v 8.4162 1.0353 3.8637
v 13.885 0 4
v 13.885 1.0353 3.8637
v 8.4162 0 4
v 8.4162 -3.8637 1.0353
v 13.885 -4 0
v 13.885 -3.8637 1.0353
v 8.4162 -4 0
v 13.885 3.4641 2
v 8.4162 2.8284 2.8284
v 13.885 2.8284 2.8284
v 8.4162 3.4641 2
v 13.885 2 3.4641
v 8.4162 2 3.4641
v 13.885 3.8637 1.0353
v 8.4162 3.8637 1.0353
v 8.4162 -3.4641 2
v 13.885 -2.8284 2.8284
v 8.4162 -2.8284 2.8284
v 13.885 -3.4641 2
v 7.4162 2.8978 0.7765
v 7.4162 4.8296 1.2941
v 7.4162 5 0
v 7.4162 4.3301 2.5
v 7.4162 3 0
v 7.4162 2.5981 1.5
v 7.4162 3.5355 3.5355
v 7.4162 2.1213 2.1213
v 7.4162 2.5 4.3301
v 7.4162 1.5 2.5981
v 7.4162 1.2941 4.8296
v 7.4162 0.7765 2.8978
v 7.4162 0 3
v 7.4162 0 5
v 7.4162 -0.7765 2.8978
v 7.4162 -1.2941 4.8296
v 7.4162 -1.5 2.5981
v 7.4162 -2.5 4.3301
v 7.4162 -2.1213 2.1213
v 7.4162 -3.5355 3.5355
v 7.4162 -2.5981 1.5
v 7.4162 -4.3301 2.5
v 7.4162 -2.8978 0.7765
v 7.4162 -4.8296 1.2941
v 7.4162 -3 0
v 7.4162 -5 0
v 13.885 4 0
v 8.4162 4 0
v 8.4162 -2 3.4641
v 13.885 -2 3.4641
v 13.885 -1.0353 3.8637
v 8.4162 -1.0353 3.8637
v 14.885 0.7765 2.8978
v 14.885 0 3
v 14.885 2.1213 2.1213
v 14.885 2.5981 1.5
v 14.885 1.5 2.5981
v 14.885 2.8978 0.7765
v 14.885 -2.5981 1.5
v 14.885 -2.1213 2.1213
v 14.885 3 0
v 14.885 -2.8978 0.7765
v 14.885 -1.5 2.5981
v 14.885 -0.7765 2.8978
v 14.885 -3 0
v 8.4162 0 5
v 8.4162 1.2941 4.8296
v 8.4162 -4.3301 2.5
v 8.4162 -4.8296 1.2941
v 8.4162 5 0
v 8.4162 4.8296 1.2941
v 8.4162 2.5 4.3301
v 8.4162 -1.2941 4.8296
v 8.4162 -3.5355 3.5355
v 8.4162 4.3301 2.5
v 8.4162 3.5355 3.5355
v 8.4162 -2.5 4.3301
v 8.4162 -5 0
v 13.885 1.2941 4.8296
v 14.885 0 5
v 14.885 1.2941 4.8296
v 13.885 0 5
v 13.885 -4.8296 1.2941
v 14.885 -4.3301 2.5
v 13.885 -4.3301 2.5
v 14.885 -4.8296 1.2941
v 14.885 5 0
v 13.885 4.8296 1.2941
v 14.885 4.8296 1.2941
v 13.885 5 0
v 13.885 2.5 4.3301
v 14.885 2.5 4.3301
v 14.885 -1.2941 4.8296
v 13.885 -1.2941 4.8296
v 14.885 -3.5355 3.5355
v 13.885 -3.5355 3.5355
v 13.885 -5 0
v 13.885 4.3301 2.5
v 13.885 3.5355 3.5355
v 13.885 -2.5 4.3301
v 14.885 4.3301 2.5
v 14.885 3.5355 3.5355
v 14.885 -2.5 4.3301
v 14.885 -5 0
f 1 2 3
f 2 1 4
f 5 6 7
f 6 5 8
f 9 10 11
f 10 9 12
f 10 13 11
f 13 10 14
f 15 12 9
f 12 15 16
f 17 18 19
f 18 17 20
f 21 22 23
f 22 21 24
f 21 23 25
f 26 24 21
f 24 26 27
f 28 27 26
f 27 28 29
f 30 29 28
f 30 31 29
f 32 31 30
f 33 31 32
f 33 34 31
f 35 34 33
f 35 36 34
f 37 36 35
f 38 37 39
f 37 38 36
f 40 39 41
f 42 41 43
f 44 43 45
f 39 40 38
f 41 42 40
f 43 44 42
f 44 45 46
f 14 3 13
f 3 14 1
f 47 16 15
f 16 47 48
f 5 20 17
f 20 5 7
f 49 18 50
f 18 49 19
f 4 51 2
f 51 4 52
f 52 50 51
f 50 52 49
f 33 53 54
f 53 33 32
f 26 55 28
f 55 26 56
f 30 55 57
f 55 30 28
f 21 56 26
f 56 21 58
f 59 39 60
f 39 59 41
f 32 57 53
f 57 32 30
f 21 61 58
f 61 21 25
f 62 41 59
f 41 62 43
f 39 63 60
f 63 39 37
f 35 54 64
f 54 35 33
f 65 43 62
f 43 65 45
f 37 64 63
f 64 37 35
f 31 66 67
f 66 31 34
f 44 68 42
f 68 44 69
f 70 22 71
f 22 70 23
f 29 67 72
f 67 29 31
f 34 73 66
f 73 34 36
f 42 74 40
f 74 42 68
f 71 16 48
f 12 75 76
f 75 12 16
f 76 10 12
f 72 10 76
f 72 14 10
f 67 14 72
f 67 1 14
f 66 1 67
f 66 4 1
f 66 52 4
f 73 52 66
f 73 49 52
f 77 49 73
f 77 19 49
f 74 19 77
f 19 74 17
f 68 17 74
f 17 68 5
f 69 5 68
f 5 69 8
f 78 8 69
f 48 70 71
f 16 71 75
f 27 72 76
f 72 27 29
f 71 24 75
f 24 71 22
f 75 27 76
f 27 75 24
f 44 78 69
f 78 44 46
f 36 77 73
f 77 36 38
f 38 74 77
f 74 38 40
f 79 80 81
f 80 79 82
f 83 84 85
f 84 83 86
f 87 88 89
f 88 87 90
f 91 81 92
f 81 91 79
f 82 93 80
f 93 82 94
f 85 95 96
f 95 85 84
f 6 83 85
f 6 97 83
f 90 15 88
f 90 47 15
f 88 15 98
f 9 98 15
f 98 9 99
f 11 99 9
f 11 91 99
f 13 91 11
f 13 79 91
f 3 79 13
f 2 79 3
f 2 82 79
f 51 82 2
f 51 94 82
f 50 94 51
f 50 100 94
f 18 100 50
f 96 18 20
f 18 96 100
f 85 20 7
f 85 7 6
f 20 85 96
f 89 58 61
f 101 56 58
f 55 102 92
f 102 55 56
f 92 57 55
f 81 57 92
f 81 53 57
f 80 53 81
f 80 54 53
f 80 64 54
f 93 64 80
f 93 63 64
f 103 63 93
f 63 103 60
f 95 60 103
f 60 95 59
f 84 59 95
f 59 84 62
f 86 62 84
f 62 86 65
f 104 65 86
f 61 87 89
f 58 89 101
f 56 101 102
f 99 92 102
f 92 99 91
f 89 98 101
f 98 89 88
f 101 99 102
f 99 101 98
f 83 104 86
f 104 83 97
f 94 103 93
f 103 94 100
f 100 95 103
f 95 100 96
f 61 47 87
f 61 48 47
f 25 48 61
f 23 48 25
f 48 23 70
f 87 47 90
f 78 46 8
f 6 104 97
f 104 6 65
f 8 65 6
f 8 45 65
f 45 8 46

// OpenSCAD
// file: ../build_environments.scad
// build_environments.scad: modules to build level sections
//

module pool(diameter=10.0, wall_height=2.0, step_width=3.0, connections=[])
{
    difference() {
        union() {
        difference() {
            cylinder(h=0.5,r1=diameter+step_width,r2=diameter+step_width,$fn=48);
            translate([0,0,-0.1])
                cylinder(h=0.7,r1=diameter,r2=diameter,$fn=48);
        }
        difference() {
            cylinder(h=wall_height,r1=diameter+step_width+1.0,r2=diameter+step_width+1.0,$fn=48);
            translate([0,0,-0.1])
                cylinder(h=wall_height+0.2,r1=diameter+step_width,r2=diameter+step_width,$fn=48);
        }
        }
    
        for (c = connections)
        {
            rotate([0,90,0]) {
                angle = atan2(c[1],c[0]);
                rotate([-angle,0,0]) {
                    cylinder(h=diameter+5.0,r1=c[2],r2=c[2],$fn=48);
                }
            }
        }
    }
}

module straight(length=10.0, width=2.0, dy1=0.0, dy2=0.0, dz=0.0)
{
    dims = [0, 0, 0, 0, 0, (dz/length)];
    matrix = [
        [ 1, dims[0], dims[1], 0 ],
        [ dims[2], 1, dims[4], 0 ],
        [ dims[5], dims[3], 1, 0 ],
        [ 0, 0, 0, 1 ]
    ];
    multmatrix(matrix)
    difference() {
        translate([dy1,0,0])
        union() {
            rotate([0,90,0]) {
                difference() {
                    cylinder(h=(length-dy1-dy2),r1=width+1.0,r2=width+1.0,$fn=24);
                    translate([0,0,-0.1])
                        cylinder(h=(length-dy1-dy2+0.2),r1=width,r2=width,$fn=24);
                }
                difference() {
                    cylinder(h=1.0,r1=width+2.0,r2=width+2.0,$fn=24);
                    translate([0,0,-0.1])
                        cylinder(h=1.2,r1=width,r2=width,$fn=24);
                }
                translate([0,0,(length-dy1-dy2)-1.0]) {
                    difference() {
                        cylinder(h=1.0,r1=width+2.0,r2=width+2.0,$fn=24);
                        translate([0,0,-0.1])
                            cylinder(h=1.2,r1=width,r2=width,$fn=24);
                    }
                }
            }
        }
        translate([0,0,-(2*width+4.0)/2])
            cube([3*length,3*length,2*width+4.0],center=true);
    }
}

module curve(p0=[0,0], center=[0,0], dir=1, angle=0.0, width=2.0)
{
    radius = sqrt((p0[0]-center[0])*(p0[0]-center[0]) + (p0[1]-center[1])*(p0[1]-center[1]));
    if (dir == 0) {
        difference() {
            rotate([0,0,-90])
            difference() {
                rotate_extrude(angle = angle, convexity = 10, $fn=32)
                    translate([radius, 0, 0])
                        circle(r = width+1.0,$fn=24);
                rotate([0,0,-1.0])
                    rotate_extrude(angle = angle+2.0, convexity = 10, $fn=32)
                        translate([radius, 0, 0])
                            circle(r = width,$fn=24);
            }
            translate([0,0,-(2*width+4.0)/2])
                cube([5*radius,5*radius,2*width+4.0],center=true);
        }
    }
    else {
        difference() {
            rotate([0,0,90])
            difference() {
                rotate_extrude(angle = -angle, convexity = 10, $fn=32)
                    translate([radius, 0, 0])
                        circle(r = width+1.0,$fn=24);
                rotate([0,0,1.0])
                    rotate_extrude(angle = -angle-2.0, convexity = 10, $fn=32)
                        translate([radius, 0, 0])
                            circle(r = width,$fn=24);
            }
            translate([0,0,-(2*width+4.0)/2])
                cube([5*radius,5*radius,2*width+4.0],center=true);
        }
    }

}

// test pool
//pool(diameter=12.0000, wall_height=3.0000, step_width=3.0000, connections=[[0.0000,-26.0000,2.0000], [23.6074,0.0000,2.0000]]);

// test straight, slope
//straight(length=26.0000, width=2.0000, dy1=11.8322, dy2=6.7082, dz=0.0000);
//straight(length=29.1549, width=12.0000, dy1=0.0000, dy2=0.0000, dz=-15.0000);

// test curve
//curve(p0=[23.6074, 0.0000], center=[23.6074, 5.0000], dir=0, angle=60.1011, width=2.0000);
//curve(p0=[33.6426, 12.4219], center=[37.9771, 9.9295], dir=1, angle=120.4627, width=2.0000);
// main file
use <../build_environments.scad>;
straight(length=14.8850, width=3.0000, dy1=7.4162, dy2=0.0000, dz=0.0000);
